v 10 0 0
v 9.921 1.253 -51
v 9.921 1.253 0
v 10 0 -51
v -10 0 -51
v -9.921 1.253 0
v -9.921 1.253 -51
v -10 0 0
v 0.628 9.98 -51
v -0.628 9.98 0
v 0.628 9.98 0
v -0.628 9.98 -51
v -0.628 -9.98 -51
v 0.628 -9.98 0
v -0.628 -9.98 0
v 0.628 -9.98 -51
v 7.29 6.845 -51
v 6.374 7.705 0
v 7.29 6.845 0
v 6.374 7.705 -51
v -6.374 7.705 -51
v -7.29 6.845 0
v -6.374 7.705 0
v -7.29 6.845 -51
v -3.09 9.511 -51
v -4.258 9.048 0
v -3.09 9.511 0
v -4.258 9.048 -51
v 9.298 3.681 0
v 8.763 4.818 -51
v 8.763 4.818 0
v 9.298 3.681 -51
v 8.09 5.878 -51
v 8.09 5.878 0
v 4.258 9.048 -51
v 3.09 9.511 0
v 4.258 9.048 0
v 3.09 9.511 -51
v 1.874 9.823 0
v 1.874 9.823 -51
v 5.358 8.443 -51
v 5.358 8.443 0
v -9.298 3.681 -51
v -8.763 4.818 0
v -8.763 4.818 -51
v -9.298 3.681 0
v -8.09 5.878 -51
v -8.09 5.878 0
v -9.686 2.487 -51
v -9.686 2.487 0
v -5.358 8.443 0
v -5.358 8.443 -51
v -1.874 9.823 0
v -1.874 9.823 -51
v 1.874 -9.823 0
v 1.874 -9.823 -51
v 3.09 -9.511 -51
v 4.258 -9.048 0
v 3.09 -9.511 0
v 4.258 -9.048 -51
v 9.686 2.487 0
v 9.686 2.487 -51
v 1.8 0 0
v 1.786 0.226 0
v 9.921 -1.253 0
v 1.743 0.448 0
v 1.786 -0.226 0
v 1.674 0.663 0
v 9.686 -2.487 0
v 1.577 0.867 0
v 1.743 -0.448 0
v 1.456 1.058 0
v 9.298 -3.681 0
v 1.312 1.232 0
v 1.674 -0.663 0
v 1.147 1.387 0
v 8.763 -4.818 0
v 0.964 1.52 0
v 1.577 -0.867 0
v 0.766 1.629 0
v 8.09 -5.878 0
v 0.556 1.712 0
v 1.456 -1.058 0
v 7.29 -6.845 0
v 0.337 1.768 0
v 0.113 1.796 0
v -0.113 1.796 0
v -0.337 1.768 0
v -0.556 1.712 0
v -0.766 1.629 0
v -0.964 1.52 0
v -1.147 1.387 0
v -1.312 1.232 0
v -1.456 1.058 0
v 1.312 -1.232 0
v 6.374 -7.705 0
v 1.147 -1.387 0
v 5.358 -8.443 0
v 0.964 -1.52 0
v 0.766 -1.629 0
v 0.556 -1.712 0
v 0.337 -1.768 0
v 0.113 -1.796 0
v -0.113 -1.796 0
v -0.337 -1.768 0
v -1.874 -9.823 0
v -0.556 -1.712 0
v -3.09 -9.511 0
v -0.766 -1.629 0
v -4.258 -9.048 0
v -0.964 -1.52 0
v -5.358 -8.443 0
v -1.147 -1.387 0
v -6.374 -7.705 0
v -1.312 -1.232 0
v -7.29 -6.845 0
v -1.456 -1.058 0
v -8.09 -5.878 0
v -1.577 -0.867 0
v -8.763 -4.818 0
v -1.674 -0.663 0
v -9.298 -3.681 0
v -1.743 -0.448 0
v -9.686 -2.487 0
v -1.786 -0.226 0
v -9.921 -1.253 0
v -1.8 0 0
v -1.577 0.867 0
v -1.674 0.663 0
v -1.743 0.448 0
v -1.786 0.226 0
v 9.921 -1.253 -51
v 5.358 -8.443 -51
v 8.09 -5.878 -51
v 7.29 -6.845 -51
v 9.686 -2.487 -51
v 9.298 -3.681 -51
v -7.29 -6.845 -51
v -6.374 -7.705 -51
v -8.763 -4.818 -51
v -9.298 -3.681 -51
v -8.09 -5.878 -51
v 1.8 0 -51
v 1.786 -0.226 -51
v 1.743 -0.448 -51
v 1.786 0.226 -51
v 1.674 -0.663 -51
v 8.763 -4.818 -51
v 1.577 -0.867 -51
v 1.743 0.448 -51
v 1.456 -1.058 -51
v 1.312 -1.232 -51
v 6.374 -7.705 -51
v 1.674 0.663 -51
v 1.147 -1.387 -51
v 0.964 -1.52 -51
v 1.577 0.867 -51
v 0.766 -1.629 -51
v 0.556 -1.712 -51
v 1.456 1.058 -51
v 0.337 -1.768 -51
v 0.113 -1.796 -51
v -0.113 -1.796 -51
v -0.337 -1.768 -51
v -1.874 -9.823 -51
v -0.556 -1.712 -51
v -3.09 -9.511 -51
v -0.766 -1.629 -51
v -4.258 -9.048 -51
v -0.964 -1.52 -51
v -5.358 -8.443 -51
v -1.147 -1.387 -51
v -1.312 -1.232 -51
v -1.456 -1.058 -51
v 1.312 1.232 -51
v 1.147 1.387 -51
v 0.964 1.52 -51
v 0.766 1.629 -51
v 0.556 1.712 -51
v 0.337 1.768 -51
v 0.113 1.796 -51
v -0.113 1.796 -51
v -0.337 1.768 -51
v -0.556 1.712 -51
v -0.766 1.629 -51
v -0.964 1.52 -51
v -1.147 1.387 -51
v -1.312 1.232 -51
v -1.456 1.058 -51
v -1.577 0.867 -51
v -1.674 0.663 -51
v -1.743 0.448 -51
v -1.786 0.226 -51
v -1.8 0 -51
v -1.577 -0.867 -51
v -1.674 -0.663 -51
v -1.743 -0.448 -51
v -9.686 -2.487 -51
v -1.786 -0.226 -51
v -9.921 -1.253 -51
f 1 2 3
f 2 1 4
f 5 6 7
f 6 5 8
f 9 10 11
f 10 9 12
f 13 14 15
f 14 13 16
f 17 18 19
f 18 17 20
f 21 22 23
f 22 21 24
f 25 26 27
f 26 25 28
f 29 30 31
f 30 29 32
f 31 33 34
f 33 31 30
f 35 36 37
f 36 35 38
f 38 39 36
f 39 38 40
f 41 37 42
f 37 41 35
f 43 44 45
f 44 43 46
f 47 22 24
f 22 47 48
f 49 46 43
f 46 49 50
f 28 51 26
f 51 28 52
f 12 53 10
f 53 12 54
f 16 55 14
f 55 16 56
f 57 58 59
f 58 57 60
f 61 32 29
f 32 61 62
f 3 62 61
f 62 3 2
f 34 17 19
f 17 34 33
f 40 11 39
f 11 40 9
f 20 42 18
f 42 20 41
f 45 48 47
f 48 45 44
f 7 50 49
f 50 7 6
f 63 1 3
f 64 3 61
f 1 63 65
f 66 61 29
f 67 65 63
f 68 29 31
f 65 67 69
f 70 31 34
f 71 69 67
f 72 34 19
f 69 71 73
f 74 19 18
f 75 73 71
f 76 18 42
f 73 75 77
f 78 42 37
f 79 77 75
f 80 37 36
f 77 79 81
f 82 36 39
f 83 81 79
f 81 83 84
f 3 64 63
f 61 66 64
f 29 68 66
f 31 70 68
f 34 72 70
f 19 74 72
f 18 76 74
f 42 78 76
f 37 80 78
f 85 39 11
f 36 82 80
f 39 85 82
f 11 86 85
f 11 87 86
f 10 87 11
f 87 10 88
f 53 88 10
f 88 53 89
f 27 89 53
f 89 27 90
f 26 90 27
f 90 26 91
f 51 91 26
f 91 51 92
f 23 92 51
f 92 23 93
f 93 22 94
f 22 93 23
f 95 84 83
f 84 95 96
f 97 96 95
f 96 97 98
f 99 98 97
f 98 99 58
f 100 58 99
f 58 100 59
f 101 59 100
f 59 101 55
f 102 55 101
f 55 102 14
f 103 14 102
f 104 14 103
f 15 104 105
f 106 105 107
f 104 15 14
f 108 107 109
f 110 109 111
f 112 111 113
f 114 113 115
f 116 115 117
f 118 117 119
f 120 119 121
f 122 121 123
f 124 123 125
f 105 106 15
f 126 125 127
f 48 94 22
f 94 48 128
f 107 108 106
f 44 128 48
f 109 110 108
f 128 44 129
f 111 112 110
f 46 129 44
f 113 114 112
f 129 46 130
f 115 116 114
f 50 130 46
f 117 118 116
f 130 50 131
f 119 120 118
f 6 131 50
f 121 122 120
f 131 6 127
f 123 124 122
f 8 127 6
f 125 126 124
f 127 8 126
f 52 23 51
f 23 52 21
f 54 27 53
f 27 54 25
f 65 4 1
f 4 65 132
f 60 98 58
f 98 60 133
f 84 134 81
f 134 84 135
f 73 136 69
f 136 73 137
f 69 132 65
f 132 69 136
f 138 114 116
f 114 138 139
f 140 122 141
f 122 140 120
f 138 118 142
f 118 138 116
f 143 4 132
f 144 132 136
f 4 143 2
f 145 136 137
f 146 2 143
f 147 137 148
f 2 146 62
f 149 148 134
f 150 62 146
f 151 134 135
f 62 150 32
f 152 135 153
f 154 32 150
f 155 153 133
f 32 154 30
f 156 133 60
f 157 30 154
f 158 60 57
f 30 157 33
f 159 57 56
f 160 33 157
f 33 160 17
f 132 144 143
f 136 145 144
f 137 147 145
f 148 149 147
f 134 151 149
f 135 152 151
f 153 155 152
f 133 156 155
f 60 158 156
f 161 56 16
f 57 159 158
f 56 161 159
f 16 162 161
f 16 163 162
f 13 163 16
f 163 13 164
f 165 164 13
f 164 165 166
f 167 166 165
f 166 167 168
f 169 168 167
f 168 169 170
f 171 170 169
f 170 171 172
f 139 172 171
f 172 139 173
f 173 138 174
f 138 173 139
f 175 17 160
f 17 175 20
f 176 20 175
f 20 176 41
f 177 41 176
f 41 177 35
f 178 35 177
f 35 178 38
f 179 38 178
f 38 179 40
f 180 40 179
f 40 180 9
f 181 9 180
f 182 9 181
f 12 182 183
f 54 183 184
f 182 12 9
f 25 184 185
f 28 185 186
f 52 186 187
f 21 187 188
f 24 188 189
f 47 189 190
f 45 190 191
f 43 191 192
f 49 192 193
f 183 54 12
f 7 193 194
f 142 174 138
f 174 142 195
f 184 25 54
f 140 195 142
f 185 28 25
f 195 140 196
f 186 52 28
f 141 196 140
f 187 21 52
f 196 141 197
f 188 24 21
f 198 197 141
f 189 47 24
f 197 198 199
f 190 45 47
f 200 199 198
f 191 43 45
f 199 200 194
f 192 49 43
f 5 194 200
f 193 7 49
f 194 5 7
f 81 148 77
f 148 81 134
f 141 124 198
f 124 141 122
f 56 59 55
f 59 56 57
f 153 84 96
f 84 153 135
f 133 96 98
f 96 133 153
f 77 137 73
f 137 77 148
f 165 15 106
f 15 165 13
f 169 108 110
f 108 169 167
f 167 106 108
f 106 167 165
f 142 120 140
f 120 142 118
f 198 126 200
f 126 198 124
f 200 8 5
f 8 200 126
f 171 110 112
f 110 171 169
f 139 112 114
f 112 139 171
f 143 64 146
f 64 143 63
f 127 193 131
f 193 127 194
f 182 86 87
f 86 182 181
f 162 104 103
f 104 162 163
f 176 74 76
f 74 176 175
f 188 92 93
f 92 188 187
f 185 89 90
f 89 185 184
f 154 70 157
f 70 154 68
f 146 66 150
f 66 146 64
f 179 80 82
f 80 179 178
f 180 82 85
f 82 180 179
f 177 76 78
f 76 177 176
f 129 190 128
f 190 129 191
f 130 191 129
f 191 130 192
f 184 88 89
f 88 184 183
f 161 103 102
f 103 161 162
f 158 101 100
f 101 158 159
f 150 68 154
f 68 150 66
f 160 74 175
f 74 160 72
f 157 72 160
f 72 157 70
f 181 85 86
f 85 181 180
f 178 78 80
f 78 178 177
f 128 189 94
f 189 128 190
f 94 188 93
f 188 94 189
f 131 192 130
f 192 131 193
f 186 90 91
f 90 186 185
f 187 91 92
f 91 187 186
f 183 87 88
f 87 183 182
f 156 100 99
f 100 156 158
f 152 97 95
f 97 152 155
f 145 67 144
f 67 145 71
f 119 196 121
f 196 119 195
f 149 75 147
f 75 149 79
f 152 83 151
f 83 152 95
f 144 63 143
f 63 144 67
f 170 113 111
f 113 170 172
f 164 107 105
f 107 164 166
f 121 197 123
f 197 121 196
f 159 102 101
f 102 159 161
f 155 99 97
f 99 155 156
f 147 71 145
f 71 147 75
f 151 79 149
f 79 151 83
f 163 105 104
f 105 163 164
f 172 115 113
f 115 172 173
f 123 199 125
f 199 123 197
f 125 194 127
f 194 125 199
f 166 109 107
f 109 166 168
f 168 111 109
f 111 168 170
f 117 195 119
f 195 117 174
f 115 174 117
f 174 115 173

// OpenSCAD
$fn = 50;


difference() {
	union() {
		translate(v = [0, 0, -51.0000000000]) {
			cylinder(h = 51, r = 10.0000000000);
		}
		cylinder(h = 0, r = 13.0000000000);
	}
	union() {
		#translate(v = [0, 0, -51]) {
			cylinder(h = 51, r = 1.8000000000);
		}
	}
}
